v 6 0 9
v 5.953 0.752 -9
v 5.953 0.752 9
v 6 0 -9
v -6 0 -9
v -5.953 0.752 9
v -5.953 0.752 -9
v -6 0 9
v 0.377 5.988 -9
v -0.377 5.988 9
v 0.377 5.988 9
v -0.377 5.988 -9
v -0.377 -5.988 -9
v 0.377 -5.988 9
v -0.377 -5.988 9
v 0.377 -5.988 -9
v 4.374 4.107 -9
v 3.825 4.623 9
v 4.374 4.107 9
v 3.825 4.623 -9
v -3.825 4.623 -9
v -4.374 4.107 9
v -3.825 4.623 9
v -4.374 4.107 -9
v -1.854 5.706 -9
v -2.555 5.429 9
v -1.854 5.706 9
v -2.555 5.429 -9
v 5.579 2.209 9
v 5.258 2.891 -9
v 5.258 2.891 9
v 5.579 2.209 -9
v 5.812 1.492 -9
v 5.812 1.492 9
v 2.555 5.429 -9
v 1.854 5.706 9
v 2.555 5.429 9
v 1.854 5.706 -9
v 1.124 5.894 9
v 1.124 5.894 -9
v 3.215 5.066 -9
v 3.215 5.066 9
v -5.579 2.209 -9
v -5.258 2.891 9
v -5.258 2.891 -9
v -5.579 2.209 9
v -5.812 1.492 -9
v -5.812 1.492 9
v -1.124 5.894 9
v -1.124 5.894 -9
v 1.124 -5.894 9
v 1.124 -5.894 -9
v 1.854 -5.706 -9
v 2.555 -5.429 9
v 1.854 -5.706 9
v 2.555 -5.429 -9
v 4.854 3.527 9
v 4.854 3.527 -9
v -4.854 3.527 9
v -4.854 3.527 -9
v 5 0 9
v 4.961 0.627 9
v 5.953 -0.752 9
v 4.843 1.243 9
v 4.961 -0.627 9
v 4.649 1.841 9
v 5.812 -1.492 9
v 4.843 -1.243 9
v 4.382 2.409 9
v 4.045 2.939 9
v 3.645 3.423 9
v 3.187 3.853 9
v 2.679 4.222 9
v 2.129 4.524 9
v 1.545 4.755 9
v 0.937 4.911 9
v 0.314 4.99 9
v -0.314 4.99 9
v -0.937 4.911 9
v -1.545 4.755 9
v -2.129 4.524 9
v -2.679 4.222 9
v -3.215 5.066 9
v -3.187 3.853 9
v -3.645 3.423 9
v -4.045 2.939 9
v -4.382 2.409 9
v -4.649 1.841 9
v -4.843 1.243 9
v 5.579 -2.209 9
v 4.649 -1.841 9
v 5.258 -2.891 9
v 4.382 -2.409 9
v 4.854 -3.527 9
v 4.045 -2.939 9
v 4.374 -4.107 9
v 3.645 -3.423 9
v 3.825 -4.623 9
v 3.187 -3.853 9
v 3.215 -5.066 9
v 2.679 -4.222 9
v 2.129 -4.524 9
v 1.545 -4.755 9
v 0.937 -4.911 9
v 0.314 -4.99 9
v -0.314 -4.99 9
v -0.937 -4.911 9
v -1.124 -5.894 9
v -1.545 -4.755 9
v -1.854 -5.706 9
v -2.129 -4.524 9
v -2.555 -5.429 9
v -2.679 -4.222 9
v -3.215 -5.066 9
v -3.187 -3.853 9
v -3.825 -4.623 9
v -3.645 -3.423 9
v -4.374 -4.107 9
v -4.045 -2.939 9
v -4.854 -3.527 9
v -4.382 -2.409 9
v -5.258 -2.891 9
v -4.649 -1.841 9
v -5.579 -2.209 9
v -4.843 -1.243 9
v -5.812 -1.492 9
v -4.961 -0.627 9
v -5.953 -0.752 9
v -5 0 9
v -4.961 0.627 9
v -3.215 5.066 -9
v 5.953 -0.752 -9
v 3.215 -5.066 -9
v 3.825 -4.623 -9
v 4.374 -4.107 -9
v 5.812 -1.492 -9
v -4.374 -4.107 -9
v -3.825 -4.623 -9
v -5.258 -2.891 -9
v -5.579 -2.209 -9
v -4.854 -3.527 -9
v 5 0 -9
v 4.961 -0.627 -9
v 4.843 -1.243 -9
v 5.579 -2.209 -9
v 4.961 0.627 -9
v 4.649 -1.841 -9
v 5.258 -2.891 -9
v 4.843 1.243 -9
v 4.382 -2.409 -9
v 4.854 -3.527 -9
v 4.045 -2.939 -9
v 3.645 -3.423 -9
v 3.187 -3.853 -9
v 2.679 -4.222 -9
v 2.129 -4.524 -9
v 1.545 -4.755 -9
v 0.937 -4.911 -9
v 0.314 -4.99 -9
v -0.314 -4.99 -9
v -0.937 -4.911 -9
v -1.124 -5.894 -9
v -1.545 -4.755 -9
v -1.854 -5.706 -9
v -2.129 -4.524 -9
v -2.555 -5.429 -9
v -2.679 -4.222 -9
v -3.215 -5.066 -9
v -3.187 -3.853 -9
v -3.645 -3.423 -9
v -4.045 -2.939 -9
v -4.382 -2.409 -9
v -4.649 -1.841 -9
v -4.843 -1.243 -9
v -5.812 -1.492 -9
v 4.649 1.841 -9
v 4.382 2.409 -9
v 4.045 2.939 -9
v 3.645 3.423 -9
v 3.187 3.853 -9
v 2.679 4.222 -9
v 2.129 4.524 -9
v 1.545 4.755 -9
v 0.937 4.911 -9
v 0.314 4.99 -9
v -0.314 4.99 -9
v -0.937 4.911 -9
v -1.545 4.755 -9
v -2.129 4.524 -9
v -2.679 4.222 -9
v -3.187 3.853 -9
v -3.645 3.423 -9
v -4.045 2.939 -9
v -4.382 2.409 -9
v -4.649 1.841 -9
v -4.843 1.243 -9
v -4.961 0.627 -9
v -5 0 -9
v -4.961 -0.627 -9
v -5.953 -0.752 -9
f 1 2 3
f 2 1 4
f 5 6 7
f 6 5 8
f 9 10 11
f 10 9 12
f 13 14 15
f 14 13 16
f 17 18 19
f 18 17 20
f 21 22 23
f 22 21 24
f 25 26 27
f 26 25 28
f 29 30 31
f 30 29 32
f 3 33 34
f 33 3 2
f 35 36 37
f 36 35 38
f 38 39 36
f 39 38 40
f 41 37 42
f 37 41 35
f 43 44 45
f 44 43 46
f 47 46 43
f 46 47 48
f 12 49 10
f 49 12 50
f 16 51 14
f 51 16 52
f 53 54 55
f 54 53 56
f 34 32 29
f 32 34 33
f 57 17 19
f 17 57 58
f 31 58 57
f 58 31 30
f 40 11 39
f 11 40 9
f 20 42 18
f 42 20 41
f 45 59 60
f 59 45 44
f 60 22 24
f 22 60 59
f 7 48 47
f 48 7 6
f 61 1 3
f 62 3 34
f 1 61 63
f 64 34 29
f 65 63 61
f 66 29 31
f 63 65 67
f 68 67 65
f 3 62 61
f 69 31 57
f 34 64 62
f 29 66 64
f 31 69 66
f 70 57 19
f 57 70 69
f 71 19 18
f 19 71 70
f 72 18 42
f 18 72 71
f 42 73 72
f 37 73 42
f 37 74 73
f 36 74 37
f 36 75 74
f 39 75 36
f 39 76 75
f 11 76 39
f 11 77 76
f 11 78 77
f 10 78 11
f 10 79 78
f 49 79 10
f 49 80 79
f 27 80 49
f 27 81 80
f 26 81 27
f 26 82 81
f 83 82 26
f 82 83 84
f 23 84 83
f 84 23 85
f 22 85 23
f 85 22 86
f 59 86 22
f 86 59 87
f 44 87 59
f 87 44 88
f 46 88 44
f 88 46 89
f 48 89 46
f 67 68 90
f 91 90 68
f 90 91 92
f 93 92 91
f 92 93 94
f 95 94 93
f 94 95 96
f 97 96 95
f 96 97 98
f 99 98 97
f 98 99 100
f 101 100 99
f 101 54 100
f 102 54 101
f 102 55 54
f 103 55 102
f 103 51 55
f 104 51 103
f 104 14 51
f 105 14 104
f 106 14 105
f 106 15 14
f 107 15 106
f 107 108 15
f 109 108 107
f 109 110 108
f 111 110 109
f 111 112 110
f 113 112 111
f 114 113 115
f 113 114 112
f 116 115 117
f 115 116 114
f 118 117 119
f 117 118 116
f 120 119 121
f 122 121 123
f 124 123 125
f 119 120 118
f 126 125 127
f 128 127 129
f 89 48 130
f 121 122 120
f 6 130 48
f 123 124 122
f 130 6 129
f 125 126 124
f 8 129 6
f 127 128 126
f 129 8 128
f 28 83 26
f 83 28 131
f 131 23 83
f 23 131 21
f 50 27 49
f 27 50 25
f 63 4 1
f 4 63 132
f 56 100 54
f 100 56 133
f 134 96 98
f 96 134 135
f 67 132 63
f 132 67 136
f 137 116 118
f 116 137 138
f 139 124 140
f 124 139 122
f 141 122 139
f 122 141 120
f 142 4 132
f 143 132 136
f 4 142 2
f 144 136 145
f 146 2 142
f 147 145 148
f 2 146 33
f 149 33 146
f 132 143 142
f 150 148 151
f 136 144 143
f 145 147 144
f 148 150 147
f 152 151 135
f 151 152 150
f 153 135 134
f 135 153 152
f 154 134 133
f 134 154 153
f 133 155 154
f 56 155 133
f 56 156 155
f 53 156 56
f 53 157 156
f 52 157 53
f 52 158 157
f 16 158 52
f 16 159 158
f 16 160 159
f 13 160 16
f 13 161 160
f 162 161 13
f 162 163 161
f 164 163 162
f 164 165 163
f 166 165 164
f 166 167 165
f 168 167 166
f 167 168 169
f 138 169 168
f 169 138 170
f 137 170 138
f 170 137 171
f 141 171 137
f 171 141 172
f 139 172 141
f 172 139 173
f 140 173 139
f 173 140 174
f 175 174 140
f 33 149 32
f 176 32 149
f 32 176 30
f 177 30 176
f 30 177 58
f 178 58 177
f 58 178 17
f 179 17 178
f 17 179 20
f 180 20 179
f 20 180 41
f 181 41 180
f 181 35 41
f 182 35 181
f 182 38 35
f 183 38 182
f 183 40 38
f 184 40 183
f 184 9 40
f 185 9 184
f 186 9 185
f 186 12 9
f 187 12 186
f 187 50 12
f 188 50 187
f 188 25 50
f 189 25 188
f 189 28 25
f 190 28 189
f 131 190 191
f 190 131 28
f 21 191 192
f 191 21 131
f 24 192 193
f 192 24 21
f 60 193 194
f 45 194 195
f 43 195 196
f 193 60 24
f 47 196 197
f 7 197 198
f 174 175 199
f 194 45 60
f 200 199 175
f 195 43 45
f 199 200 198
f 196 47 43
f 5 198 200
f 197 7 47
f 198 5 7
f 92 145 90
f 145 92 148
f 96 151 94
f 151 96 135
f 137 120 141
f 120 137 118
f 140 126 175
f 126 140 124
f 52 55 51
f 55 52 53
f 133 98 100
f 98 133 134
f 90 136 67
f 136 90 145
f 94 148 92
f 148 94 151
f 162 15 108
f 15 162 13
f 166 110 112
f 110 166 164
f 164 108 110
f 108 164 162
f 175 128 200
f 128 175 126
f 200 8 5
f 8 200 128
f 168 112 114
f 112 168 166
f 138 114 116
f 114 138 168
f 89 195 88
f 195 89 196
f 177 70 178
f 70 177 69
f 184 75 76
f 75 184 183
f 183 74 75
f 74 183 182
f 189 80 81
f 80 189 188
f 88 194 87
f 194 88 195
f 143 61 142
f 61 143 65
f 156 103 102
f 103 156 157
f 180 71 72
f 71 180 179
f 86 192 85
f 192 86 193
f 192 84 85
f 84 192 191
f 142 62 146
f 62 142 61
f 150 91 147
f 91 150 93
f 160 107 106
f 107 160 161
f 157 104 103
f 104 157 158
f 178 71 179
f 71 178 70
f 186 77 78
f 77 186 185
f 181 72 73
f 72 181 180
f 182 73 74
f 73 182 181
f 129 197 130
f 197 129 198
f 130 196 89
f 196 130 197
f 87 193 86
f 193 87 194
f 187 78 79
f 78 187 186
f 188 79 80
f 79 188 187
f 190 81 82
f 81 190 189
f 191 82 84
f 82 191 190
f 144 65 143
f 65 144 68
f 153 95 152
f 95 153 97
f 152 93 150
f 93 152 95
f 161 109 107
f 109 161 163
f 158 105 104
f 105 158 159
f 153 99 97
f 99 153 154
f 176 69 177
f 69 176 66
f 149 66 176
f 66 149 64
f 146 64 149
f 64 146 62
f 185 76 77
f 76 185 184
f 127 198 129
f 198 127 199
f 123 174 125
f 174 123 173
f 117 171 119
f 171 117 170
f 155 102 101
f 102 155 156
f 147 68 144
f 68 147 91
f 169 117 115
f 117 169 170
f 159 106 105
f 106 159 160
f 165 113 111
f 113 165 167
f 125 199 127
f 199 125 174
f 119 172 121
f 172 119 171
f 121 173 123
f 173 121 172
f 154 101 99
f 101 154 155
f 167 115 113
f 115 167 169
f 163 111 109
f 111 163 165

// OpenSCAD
$fn = 50;


difference() {
	union() {
		translate(v = [0, 0, -9.0000000000]) {
			cylinder(h = 18, r = 6.0000000000);
		}
	}
	union() {
		translate(v = [0, 0, -100.0000000000]) {
			cylinder(h = 200, r = 5);
		}
	}
}
